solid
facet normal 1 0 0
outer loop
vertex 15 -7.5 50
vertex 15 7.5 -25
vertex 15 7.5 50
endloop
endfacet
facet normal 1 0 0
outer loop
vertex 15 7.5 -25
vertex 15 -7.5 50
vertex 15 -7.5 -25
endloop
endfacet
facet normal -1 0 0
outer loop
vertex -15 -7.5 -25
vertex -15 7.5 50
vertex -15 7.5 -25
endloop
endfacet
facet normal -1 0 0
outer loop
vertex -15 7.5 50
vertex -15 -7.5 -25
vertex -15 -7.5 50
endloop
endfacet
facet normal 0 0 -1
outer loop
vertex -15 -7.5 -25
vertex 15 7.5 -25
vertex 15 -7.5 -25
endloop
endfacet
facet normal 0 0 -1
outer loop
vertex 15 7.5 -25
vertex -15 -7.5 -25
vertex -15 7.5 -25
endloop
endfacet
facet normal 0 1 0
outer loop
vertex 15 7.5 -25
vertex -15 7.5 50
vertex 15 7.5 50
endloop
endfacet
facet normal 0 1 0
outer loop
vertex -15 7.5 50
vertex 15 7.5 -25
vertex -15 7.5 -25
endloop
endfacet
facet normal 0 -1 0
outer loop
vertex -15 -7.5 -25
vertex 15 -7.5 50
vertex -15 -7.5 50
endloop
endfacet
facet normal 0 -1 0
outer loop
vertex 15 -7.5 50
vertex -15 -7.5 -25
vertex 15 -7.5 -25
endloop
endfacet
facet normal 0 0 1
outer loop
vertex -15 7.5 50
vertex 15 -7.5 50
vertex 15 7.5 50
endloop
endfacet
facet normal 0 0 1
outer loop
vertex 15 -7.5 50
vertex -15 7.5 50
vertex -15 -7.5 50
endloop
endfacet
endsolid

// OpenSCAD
// Define the dimensions of the rectangular blocks
block_width = 20;  // Width of the block
block_height = 40; // Height of the block
block_depth = 10;  // Depth of the block

// Function to create a rectangular block
module rectangular_block(width, height, depth, slant_top = false, slant_side = false, rotation = [0, 0, 0]) {
    if (slant_top) {
        // Create a block with a slanted top surface
        polyhedron(points=[
            [0, 0, 0], [width, 0, 0], [width, depth, 0], [0, depth, 0], // Base vertices
            [0, 0, height], [width, 0, height], [width, depth, height], [0, depth, height] // Top vertices (adjusted to be flat)
        ],
        faces=[
            [0, 1, 2, 3], // Base
            [4, 5, 6, 7], // Top
            [0, 1, 5, 4], // Side 1
            [1, 2, 6, 5], // Side 2
            [2, 3, 7, 6], // Side 3
            [3, 0, 4, 7]  // Side 4
        ]);
    } else if (slant_side) {
        // Create a block with a slanted side surface
        polyhedron(points=[
            [0, 0, 0], [width, 0, 0], [width, depth, 0], [0, depth, 0], // Base vertices
            [0, 0, height], [width, 0, height], [width, depth, height], [0, depth, height] // Top vertices (adjusted to be straight)
        ],
        faces=[
            [0, 1, 2, 3], // Base
            [4, 5, 6, 7], // Top
            [0, 1, 5, 4], // Side 1
            [1, 2, 6, 5], // Side 2
            [2, 3, 7, 6], // Side 3
            [3, 0, 4, 7]  // Side 4
        ]);
    } else {
        // Create a regular rectangular block
        cube([width, depth, height], center = true);
    }
    rotate(rotation) {
        translate([0, 0, height / 2]) {
            cube([width, depth, height], center = true);
        }
    }
}

// Generate six rectangular blocks with modifications based on the differences list

// Block 1: Adjust the top surface to be flat and parallel to the base
rectangular_block(block_width, block_height, block_depth, slant_top = false);

// Block 2: Reduce the height and increase the width
rectangular_block(block_width + 10, block_height - 10, block_depth);

// Block 3: Adjust the slanted side surface to be perpendicular to the base
rectangular_block(block_width, block_height, block_depth, slant_side = false);

// Block 4: Align the block to be upright and parallel to the axes
rectangular_block(block_width, block_height, block_depth, rotation = [0, 0, 0]);

// Block 5: Increase the dimensions to match the size of the original block
rectangular_block(block_width + 10, block_height + 10, block_depth + 5);

// Block 6: Adjust the shape to be symmetrical and consistent in dimensions
rectangular_block(block_width, block_height, block_depth);
